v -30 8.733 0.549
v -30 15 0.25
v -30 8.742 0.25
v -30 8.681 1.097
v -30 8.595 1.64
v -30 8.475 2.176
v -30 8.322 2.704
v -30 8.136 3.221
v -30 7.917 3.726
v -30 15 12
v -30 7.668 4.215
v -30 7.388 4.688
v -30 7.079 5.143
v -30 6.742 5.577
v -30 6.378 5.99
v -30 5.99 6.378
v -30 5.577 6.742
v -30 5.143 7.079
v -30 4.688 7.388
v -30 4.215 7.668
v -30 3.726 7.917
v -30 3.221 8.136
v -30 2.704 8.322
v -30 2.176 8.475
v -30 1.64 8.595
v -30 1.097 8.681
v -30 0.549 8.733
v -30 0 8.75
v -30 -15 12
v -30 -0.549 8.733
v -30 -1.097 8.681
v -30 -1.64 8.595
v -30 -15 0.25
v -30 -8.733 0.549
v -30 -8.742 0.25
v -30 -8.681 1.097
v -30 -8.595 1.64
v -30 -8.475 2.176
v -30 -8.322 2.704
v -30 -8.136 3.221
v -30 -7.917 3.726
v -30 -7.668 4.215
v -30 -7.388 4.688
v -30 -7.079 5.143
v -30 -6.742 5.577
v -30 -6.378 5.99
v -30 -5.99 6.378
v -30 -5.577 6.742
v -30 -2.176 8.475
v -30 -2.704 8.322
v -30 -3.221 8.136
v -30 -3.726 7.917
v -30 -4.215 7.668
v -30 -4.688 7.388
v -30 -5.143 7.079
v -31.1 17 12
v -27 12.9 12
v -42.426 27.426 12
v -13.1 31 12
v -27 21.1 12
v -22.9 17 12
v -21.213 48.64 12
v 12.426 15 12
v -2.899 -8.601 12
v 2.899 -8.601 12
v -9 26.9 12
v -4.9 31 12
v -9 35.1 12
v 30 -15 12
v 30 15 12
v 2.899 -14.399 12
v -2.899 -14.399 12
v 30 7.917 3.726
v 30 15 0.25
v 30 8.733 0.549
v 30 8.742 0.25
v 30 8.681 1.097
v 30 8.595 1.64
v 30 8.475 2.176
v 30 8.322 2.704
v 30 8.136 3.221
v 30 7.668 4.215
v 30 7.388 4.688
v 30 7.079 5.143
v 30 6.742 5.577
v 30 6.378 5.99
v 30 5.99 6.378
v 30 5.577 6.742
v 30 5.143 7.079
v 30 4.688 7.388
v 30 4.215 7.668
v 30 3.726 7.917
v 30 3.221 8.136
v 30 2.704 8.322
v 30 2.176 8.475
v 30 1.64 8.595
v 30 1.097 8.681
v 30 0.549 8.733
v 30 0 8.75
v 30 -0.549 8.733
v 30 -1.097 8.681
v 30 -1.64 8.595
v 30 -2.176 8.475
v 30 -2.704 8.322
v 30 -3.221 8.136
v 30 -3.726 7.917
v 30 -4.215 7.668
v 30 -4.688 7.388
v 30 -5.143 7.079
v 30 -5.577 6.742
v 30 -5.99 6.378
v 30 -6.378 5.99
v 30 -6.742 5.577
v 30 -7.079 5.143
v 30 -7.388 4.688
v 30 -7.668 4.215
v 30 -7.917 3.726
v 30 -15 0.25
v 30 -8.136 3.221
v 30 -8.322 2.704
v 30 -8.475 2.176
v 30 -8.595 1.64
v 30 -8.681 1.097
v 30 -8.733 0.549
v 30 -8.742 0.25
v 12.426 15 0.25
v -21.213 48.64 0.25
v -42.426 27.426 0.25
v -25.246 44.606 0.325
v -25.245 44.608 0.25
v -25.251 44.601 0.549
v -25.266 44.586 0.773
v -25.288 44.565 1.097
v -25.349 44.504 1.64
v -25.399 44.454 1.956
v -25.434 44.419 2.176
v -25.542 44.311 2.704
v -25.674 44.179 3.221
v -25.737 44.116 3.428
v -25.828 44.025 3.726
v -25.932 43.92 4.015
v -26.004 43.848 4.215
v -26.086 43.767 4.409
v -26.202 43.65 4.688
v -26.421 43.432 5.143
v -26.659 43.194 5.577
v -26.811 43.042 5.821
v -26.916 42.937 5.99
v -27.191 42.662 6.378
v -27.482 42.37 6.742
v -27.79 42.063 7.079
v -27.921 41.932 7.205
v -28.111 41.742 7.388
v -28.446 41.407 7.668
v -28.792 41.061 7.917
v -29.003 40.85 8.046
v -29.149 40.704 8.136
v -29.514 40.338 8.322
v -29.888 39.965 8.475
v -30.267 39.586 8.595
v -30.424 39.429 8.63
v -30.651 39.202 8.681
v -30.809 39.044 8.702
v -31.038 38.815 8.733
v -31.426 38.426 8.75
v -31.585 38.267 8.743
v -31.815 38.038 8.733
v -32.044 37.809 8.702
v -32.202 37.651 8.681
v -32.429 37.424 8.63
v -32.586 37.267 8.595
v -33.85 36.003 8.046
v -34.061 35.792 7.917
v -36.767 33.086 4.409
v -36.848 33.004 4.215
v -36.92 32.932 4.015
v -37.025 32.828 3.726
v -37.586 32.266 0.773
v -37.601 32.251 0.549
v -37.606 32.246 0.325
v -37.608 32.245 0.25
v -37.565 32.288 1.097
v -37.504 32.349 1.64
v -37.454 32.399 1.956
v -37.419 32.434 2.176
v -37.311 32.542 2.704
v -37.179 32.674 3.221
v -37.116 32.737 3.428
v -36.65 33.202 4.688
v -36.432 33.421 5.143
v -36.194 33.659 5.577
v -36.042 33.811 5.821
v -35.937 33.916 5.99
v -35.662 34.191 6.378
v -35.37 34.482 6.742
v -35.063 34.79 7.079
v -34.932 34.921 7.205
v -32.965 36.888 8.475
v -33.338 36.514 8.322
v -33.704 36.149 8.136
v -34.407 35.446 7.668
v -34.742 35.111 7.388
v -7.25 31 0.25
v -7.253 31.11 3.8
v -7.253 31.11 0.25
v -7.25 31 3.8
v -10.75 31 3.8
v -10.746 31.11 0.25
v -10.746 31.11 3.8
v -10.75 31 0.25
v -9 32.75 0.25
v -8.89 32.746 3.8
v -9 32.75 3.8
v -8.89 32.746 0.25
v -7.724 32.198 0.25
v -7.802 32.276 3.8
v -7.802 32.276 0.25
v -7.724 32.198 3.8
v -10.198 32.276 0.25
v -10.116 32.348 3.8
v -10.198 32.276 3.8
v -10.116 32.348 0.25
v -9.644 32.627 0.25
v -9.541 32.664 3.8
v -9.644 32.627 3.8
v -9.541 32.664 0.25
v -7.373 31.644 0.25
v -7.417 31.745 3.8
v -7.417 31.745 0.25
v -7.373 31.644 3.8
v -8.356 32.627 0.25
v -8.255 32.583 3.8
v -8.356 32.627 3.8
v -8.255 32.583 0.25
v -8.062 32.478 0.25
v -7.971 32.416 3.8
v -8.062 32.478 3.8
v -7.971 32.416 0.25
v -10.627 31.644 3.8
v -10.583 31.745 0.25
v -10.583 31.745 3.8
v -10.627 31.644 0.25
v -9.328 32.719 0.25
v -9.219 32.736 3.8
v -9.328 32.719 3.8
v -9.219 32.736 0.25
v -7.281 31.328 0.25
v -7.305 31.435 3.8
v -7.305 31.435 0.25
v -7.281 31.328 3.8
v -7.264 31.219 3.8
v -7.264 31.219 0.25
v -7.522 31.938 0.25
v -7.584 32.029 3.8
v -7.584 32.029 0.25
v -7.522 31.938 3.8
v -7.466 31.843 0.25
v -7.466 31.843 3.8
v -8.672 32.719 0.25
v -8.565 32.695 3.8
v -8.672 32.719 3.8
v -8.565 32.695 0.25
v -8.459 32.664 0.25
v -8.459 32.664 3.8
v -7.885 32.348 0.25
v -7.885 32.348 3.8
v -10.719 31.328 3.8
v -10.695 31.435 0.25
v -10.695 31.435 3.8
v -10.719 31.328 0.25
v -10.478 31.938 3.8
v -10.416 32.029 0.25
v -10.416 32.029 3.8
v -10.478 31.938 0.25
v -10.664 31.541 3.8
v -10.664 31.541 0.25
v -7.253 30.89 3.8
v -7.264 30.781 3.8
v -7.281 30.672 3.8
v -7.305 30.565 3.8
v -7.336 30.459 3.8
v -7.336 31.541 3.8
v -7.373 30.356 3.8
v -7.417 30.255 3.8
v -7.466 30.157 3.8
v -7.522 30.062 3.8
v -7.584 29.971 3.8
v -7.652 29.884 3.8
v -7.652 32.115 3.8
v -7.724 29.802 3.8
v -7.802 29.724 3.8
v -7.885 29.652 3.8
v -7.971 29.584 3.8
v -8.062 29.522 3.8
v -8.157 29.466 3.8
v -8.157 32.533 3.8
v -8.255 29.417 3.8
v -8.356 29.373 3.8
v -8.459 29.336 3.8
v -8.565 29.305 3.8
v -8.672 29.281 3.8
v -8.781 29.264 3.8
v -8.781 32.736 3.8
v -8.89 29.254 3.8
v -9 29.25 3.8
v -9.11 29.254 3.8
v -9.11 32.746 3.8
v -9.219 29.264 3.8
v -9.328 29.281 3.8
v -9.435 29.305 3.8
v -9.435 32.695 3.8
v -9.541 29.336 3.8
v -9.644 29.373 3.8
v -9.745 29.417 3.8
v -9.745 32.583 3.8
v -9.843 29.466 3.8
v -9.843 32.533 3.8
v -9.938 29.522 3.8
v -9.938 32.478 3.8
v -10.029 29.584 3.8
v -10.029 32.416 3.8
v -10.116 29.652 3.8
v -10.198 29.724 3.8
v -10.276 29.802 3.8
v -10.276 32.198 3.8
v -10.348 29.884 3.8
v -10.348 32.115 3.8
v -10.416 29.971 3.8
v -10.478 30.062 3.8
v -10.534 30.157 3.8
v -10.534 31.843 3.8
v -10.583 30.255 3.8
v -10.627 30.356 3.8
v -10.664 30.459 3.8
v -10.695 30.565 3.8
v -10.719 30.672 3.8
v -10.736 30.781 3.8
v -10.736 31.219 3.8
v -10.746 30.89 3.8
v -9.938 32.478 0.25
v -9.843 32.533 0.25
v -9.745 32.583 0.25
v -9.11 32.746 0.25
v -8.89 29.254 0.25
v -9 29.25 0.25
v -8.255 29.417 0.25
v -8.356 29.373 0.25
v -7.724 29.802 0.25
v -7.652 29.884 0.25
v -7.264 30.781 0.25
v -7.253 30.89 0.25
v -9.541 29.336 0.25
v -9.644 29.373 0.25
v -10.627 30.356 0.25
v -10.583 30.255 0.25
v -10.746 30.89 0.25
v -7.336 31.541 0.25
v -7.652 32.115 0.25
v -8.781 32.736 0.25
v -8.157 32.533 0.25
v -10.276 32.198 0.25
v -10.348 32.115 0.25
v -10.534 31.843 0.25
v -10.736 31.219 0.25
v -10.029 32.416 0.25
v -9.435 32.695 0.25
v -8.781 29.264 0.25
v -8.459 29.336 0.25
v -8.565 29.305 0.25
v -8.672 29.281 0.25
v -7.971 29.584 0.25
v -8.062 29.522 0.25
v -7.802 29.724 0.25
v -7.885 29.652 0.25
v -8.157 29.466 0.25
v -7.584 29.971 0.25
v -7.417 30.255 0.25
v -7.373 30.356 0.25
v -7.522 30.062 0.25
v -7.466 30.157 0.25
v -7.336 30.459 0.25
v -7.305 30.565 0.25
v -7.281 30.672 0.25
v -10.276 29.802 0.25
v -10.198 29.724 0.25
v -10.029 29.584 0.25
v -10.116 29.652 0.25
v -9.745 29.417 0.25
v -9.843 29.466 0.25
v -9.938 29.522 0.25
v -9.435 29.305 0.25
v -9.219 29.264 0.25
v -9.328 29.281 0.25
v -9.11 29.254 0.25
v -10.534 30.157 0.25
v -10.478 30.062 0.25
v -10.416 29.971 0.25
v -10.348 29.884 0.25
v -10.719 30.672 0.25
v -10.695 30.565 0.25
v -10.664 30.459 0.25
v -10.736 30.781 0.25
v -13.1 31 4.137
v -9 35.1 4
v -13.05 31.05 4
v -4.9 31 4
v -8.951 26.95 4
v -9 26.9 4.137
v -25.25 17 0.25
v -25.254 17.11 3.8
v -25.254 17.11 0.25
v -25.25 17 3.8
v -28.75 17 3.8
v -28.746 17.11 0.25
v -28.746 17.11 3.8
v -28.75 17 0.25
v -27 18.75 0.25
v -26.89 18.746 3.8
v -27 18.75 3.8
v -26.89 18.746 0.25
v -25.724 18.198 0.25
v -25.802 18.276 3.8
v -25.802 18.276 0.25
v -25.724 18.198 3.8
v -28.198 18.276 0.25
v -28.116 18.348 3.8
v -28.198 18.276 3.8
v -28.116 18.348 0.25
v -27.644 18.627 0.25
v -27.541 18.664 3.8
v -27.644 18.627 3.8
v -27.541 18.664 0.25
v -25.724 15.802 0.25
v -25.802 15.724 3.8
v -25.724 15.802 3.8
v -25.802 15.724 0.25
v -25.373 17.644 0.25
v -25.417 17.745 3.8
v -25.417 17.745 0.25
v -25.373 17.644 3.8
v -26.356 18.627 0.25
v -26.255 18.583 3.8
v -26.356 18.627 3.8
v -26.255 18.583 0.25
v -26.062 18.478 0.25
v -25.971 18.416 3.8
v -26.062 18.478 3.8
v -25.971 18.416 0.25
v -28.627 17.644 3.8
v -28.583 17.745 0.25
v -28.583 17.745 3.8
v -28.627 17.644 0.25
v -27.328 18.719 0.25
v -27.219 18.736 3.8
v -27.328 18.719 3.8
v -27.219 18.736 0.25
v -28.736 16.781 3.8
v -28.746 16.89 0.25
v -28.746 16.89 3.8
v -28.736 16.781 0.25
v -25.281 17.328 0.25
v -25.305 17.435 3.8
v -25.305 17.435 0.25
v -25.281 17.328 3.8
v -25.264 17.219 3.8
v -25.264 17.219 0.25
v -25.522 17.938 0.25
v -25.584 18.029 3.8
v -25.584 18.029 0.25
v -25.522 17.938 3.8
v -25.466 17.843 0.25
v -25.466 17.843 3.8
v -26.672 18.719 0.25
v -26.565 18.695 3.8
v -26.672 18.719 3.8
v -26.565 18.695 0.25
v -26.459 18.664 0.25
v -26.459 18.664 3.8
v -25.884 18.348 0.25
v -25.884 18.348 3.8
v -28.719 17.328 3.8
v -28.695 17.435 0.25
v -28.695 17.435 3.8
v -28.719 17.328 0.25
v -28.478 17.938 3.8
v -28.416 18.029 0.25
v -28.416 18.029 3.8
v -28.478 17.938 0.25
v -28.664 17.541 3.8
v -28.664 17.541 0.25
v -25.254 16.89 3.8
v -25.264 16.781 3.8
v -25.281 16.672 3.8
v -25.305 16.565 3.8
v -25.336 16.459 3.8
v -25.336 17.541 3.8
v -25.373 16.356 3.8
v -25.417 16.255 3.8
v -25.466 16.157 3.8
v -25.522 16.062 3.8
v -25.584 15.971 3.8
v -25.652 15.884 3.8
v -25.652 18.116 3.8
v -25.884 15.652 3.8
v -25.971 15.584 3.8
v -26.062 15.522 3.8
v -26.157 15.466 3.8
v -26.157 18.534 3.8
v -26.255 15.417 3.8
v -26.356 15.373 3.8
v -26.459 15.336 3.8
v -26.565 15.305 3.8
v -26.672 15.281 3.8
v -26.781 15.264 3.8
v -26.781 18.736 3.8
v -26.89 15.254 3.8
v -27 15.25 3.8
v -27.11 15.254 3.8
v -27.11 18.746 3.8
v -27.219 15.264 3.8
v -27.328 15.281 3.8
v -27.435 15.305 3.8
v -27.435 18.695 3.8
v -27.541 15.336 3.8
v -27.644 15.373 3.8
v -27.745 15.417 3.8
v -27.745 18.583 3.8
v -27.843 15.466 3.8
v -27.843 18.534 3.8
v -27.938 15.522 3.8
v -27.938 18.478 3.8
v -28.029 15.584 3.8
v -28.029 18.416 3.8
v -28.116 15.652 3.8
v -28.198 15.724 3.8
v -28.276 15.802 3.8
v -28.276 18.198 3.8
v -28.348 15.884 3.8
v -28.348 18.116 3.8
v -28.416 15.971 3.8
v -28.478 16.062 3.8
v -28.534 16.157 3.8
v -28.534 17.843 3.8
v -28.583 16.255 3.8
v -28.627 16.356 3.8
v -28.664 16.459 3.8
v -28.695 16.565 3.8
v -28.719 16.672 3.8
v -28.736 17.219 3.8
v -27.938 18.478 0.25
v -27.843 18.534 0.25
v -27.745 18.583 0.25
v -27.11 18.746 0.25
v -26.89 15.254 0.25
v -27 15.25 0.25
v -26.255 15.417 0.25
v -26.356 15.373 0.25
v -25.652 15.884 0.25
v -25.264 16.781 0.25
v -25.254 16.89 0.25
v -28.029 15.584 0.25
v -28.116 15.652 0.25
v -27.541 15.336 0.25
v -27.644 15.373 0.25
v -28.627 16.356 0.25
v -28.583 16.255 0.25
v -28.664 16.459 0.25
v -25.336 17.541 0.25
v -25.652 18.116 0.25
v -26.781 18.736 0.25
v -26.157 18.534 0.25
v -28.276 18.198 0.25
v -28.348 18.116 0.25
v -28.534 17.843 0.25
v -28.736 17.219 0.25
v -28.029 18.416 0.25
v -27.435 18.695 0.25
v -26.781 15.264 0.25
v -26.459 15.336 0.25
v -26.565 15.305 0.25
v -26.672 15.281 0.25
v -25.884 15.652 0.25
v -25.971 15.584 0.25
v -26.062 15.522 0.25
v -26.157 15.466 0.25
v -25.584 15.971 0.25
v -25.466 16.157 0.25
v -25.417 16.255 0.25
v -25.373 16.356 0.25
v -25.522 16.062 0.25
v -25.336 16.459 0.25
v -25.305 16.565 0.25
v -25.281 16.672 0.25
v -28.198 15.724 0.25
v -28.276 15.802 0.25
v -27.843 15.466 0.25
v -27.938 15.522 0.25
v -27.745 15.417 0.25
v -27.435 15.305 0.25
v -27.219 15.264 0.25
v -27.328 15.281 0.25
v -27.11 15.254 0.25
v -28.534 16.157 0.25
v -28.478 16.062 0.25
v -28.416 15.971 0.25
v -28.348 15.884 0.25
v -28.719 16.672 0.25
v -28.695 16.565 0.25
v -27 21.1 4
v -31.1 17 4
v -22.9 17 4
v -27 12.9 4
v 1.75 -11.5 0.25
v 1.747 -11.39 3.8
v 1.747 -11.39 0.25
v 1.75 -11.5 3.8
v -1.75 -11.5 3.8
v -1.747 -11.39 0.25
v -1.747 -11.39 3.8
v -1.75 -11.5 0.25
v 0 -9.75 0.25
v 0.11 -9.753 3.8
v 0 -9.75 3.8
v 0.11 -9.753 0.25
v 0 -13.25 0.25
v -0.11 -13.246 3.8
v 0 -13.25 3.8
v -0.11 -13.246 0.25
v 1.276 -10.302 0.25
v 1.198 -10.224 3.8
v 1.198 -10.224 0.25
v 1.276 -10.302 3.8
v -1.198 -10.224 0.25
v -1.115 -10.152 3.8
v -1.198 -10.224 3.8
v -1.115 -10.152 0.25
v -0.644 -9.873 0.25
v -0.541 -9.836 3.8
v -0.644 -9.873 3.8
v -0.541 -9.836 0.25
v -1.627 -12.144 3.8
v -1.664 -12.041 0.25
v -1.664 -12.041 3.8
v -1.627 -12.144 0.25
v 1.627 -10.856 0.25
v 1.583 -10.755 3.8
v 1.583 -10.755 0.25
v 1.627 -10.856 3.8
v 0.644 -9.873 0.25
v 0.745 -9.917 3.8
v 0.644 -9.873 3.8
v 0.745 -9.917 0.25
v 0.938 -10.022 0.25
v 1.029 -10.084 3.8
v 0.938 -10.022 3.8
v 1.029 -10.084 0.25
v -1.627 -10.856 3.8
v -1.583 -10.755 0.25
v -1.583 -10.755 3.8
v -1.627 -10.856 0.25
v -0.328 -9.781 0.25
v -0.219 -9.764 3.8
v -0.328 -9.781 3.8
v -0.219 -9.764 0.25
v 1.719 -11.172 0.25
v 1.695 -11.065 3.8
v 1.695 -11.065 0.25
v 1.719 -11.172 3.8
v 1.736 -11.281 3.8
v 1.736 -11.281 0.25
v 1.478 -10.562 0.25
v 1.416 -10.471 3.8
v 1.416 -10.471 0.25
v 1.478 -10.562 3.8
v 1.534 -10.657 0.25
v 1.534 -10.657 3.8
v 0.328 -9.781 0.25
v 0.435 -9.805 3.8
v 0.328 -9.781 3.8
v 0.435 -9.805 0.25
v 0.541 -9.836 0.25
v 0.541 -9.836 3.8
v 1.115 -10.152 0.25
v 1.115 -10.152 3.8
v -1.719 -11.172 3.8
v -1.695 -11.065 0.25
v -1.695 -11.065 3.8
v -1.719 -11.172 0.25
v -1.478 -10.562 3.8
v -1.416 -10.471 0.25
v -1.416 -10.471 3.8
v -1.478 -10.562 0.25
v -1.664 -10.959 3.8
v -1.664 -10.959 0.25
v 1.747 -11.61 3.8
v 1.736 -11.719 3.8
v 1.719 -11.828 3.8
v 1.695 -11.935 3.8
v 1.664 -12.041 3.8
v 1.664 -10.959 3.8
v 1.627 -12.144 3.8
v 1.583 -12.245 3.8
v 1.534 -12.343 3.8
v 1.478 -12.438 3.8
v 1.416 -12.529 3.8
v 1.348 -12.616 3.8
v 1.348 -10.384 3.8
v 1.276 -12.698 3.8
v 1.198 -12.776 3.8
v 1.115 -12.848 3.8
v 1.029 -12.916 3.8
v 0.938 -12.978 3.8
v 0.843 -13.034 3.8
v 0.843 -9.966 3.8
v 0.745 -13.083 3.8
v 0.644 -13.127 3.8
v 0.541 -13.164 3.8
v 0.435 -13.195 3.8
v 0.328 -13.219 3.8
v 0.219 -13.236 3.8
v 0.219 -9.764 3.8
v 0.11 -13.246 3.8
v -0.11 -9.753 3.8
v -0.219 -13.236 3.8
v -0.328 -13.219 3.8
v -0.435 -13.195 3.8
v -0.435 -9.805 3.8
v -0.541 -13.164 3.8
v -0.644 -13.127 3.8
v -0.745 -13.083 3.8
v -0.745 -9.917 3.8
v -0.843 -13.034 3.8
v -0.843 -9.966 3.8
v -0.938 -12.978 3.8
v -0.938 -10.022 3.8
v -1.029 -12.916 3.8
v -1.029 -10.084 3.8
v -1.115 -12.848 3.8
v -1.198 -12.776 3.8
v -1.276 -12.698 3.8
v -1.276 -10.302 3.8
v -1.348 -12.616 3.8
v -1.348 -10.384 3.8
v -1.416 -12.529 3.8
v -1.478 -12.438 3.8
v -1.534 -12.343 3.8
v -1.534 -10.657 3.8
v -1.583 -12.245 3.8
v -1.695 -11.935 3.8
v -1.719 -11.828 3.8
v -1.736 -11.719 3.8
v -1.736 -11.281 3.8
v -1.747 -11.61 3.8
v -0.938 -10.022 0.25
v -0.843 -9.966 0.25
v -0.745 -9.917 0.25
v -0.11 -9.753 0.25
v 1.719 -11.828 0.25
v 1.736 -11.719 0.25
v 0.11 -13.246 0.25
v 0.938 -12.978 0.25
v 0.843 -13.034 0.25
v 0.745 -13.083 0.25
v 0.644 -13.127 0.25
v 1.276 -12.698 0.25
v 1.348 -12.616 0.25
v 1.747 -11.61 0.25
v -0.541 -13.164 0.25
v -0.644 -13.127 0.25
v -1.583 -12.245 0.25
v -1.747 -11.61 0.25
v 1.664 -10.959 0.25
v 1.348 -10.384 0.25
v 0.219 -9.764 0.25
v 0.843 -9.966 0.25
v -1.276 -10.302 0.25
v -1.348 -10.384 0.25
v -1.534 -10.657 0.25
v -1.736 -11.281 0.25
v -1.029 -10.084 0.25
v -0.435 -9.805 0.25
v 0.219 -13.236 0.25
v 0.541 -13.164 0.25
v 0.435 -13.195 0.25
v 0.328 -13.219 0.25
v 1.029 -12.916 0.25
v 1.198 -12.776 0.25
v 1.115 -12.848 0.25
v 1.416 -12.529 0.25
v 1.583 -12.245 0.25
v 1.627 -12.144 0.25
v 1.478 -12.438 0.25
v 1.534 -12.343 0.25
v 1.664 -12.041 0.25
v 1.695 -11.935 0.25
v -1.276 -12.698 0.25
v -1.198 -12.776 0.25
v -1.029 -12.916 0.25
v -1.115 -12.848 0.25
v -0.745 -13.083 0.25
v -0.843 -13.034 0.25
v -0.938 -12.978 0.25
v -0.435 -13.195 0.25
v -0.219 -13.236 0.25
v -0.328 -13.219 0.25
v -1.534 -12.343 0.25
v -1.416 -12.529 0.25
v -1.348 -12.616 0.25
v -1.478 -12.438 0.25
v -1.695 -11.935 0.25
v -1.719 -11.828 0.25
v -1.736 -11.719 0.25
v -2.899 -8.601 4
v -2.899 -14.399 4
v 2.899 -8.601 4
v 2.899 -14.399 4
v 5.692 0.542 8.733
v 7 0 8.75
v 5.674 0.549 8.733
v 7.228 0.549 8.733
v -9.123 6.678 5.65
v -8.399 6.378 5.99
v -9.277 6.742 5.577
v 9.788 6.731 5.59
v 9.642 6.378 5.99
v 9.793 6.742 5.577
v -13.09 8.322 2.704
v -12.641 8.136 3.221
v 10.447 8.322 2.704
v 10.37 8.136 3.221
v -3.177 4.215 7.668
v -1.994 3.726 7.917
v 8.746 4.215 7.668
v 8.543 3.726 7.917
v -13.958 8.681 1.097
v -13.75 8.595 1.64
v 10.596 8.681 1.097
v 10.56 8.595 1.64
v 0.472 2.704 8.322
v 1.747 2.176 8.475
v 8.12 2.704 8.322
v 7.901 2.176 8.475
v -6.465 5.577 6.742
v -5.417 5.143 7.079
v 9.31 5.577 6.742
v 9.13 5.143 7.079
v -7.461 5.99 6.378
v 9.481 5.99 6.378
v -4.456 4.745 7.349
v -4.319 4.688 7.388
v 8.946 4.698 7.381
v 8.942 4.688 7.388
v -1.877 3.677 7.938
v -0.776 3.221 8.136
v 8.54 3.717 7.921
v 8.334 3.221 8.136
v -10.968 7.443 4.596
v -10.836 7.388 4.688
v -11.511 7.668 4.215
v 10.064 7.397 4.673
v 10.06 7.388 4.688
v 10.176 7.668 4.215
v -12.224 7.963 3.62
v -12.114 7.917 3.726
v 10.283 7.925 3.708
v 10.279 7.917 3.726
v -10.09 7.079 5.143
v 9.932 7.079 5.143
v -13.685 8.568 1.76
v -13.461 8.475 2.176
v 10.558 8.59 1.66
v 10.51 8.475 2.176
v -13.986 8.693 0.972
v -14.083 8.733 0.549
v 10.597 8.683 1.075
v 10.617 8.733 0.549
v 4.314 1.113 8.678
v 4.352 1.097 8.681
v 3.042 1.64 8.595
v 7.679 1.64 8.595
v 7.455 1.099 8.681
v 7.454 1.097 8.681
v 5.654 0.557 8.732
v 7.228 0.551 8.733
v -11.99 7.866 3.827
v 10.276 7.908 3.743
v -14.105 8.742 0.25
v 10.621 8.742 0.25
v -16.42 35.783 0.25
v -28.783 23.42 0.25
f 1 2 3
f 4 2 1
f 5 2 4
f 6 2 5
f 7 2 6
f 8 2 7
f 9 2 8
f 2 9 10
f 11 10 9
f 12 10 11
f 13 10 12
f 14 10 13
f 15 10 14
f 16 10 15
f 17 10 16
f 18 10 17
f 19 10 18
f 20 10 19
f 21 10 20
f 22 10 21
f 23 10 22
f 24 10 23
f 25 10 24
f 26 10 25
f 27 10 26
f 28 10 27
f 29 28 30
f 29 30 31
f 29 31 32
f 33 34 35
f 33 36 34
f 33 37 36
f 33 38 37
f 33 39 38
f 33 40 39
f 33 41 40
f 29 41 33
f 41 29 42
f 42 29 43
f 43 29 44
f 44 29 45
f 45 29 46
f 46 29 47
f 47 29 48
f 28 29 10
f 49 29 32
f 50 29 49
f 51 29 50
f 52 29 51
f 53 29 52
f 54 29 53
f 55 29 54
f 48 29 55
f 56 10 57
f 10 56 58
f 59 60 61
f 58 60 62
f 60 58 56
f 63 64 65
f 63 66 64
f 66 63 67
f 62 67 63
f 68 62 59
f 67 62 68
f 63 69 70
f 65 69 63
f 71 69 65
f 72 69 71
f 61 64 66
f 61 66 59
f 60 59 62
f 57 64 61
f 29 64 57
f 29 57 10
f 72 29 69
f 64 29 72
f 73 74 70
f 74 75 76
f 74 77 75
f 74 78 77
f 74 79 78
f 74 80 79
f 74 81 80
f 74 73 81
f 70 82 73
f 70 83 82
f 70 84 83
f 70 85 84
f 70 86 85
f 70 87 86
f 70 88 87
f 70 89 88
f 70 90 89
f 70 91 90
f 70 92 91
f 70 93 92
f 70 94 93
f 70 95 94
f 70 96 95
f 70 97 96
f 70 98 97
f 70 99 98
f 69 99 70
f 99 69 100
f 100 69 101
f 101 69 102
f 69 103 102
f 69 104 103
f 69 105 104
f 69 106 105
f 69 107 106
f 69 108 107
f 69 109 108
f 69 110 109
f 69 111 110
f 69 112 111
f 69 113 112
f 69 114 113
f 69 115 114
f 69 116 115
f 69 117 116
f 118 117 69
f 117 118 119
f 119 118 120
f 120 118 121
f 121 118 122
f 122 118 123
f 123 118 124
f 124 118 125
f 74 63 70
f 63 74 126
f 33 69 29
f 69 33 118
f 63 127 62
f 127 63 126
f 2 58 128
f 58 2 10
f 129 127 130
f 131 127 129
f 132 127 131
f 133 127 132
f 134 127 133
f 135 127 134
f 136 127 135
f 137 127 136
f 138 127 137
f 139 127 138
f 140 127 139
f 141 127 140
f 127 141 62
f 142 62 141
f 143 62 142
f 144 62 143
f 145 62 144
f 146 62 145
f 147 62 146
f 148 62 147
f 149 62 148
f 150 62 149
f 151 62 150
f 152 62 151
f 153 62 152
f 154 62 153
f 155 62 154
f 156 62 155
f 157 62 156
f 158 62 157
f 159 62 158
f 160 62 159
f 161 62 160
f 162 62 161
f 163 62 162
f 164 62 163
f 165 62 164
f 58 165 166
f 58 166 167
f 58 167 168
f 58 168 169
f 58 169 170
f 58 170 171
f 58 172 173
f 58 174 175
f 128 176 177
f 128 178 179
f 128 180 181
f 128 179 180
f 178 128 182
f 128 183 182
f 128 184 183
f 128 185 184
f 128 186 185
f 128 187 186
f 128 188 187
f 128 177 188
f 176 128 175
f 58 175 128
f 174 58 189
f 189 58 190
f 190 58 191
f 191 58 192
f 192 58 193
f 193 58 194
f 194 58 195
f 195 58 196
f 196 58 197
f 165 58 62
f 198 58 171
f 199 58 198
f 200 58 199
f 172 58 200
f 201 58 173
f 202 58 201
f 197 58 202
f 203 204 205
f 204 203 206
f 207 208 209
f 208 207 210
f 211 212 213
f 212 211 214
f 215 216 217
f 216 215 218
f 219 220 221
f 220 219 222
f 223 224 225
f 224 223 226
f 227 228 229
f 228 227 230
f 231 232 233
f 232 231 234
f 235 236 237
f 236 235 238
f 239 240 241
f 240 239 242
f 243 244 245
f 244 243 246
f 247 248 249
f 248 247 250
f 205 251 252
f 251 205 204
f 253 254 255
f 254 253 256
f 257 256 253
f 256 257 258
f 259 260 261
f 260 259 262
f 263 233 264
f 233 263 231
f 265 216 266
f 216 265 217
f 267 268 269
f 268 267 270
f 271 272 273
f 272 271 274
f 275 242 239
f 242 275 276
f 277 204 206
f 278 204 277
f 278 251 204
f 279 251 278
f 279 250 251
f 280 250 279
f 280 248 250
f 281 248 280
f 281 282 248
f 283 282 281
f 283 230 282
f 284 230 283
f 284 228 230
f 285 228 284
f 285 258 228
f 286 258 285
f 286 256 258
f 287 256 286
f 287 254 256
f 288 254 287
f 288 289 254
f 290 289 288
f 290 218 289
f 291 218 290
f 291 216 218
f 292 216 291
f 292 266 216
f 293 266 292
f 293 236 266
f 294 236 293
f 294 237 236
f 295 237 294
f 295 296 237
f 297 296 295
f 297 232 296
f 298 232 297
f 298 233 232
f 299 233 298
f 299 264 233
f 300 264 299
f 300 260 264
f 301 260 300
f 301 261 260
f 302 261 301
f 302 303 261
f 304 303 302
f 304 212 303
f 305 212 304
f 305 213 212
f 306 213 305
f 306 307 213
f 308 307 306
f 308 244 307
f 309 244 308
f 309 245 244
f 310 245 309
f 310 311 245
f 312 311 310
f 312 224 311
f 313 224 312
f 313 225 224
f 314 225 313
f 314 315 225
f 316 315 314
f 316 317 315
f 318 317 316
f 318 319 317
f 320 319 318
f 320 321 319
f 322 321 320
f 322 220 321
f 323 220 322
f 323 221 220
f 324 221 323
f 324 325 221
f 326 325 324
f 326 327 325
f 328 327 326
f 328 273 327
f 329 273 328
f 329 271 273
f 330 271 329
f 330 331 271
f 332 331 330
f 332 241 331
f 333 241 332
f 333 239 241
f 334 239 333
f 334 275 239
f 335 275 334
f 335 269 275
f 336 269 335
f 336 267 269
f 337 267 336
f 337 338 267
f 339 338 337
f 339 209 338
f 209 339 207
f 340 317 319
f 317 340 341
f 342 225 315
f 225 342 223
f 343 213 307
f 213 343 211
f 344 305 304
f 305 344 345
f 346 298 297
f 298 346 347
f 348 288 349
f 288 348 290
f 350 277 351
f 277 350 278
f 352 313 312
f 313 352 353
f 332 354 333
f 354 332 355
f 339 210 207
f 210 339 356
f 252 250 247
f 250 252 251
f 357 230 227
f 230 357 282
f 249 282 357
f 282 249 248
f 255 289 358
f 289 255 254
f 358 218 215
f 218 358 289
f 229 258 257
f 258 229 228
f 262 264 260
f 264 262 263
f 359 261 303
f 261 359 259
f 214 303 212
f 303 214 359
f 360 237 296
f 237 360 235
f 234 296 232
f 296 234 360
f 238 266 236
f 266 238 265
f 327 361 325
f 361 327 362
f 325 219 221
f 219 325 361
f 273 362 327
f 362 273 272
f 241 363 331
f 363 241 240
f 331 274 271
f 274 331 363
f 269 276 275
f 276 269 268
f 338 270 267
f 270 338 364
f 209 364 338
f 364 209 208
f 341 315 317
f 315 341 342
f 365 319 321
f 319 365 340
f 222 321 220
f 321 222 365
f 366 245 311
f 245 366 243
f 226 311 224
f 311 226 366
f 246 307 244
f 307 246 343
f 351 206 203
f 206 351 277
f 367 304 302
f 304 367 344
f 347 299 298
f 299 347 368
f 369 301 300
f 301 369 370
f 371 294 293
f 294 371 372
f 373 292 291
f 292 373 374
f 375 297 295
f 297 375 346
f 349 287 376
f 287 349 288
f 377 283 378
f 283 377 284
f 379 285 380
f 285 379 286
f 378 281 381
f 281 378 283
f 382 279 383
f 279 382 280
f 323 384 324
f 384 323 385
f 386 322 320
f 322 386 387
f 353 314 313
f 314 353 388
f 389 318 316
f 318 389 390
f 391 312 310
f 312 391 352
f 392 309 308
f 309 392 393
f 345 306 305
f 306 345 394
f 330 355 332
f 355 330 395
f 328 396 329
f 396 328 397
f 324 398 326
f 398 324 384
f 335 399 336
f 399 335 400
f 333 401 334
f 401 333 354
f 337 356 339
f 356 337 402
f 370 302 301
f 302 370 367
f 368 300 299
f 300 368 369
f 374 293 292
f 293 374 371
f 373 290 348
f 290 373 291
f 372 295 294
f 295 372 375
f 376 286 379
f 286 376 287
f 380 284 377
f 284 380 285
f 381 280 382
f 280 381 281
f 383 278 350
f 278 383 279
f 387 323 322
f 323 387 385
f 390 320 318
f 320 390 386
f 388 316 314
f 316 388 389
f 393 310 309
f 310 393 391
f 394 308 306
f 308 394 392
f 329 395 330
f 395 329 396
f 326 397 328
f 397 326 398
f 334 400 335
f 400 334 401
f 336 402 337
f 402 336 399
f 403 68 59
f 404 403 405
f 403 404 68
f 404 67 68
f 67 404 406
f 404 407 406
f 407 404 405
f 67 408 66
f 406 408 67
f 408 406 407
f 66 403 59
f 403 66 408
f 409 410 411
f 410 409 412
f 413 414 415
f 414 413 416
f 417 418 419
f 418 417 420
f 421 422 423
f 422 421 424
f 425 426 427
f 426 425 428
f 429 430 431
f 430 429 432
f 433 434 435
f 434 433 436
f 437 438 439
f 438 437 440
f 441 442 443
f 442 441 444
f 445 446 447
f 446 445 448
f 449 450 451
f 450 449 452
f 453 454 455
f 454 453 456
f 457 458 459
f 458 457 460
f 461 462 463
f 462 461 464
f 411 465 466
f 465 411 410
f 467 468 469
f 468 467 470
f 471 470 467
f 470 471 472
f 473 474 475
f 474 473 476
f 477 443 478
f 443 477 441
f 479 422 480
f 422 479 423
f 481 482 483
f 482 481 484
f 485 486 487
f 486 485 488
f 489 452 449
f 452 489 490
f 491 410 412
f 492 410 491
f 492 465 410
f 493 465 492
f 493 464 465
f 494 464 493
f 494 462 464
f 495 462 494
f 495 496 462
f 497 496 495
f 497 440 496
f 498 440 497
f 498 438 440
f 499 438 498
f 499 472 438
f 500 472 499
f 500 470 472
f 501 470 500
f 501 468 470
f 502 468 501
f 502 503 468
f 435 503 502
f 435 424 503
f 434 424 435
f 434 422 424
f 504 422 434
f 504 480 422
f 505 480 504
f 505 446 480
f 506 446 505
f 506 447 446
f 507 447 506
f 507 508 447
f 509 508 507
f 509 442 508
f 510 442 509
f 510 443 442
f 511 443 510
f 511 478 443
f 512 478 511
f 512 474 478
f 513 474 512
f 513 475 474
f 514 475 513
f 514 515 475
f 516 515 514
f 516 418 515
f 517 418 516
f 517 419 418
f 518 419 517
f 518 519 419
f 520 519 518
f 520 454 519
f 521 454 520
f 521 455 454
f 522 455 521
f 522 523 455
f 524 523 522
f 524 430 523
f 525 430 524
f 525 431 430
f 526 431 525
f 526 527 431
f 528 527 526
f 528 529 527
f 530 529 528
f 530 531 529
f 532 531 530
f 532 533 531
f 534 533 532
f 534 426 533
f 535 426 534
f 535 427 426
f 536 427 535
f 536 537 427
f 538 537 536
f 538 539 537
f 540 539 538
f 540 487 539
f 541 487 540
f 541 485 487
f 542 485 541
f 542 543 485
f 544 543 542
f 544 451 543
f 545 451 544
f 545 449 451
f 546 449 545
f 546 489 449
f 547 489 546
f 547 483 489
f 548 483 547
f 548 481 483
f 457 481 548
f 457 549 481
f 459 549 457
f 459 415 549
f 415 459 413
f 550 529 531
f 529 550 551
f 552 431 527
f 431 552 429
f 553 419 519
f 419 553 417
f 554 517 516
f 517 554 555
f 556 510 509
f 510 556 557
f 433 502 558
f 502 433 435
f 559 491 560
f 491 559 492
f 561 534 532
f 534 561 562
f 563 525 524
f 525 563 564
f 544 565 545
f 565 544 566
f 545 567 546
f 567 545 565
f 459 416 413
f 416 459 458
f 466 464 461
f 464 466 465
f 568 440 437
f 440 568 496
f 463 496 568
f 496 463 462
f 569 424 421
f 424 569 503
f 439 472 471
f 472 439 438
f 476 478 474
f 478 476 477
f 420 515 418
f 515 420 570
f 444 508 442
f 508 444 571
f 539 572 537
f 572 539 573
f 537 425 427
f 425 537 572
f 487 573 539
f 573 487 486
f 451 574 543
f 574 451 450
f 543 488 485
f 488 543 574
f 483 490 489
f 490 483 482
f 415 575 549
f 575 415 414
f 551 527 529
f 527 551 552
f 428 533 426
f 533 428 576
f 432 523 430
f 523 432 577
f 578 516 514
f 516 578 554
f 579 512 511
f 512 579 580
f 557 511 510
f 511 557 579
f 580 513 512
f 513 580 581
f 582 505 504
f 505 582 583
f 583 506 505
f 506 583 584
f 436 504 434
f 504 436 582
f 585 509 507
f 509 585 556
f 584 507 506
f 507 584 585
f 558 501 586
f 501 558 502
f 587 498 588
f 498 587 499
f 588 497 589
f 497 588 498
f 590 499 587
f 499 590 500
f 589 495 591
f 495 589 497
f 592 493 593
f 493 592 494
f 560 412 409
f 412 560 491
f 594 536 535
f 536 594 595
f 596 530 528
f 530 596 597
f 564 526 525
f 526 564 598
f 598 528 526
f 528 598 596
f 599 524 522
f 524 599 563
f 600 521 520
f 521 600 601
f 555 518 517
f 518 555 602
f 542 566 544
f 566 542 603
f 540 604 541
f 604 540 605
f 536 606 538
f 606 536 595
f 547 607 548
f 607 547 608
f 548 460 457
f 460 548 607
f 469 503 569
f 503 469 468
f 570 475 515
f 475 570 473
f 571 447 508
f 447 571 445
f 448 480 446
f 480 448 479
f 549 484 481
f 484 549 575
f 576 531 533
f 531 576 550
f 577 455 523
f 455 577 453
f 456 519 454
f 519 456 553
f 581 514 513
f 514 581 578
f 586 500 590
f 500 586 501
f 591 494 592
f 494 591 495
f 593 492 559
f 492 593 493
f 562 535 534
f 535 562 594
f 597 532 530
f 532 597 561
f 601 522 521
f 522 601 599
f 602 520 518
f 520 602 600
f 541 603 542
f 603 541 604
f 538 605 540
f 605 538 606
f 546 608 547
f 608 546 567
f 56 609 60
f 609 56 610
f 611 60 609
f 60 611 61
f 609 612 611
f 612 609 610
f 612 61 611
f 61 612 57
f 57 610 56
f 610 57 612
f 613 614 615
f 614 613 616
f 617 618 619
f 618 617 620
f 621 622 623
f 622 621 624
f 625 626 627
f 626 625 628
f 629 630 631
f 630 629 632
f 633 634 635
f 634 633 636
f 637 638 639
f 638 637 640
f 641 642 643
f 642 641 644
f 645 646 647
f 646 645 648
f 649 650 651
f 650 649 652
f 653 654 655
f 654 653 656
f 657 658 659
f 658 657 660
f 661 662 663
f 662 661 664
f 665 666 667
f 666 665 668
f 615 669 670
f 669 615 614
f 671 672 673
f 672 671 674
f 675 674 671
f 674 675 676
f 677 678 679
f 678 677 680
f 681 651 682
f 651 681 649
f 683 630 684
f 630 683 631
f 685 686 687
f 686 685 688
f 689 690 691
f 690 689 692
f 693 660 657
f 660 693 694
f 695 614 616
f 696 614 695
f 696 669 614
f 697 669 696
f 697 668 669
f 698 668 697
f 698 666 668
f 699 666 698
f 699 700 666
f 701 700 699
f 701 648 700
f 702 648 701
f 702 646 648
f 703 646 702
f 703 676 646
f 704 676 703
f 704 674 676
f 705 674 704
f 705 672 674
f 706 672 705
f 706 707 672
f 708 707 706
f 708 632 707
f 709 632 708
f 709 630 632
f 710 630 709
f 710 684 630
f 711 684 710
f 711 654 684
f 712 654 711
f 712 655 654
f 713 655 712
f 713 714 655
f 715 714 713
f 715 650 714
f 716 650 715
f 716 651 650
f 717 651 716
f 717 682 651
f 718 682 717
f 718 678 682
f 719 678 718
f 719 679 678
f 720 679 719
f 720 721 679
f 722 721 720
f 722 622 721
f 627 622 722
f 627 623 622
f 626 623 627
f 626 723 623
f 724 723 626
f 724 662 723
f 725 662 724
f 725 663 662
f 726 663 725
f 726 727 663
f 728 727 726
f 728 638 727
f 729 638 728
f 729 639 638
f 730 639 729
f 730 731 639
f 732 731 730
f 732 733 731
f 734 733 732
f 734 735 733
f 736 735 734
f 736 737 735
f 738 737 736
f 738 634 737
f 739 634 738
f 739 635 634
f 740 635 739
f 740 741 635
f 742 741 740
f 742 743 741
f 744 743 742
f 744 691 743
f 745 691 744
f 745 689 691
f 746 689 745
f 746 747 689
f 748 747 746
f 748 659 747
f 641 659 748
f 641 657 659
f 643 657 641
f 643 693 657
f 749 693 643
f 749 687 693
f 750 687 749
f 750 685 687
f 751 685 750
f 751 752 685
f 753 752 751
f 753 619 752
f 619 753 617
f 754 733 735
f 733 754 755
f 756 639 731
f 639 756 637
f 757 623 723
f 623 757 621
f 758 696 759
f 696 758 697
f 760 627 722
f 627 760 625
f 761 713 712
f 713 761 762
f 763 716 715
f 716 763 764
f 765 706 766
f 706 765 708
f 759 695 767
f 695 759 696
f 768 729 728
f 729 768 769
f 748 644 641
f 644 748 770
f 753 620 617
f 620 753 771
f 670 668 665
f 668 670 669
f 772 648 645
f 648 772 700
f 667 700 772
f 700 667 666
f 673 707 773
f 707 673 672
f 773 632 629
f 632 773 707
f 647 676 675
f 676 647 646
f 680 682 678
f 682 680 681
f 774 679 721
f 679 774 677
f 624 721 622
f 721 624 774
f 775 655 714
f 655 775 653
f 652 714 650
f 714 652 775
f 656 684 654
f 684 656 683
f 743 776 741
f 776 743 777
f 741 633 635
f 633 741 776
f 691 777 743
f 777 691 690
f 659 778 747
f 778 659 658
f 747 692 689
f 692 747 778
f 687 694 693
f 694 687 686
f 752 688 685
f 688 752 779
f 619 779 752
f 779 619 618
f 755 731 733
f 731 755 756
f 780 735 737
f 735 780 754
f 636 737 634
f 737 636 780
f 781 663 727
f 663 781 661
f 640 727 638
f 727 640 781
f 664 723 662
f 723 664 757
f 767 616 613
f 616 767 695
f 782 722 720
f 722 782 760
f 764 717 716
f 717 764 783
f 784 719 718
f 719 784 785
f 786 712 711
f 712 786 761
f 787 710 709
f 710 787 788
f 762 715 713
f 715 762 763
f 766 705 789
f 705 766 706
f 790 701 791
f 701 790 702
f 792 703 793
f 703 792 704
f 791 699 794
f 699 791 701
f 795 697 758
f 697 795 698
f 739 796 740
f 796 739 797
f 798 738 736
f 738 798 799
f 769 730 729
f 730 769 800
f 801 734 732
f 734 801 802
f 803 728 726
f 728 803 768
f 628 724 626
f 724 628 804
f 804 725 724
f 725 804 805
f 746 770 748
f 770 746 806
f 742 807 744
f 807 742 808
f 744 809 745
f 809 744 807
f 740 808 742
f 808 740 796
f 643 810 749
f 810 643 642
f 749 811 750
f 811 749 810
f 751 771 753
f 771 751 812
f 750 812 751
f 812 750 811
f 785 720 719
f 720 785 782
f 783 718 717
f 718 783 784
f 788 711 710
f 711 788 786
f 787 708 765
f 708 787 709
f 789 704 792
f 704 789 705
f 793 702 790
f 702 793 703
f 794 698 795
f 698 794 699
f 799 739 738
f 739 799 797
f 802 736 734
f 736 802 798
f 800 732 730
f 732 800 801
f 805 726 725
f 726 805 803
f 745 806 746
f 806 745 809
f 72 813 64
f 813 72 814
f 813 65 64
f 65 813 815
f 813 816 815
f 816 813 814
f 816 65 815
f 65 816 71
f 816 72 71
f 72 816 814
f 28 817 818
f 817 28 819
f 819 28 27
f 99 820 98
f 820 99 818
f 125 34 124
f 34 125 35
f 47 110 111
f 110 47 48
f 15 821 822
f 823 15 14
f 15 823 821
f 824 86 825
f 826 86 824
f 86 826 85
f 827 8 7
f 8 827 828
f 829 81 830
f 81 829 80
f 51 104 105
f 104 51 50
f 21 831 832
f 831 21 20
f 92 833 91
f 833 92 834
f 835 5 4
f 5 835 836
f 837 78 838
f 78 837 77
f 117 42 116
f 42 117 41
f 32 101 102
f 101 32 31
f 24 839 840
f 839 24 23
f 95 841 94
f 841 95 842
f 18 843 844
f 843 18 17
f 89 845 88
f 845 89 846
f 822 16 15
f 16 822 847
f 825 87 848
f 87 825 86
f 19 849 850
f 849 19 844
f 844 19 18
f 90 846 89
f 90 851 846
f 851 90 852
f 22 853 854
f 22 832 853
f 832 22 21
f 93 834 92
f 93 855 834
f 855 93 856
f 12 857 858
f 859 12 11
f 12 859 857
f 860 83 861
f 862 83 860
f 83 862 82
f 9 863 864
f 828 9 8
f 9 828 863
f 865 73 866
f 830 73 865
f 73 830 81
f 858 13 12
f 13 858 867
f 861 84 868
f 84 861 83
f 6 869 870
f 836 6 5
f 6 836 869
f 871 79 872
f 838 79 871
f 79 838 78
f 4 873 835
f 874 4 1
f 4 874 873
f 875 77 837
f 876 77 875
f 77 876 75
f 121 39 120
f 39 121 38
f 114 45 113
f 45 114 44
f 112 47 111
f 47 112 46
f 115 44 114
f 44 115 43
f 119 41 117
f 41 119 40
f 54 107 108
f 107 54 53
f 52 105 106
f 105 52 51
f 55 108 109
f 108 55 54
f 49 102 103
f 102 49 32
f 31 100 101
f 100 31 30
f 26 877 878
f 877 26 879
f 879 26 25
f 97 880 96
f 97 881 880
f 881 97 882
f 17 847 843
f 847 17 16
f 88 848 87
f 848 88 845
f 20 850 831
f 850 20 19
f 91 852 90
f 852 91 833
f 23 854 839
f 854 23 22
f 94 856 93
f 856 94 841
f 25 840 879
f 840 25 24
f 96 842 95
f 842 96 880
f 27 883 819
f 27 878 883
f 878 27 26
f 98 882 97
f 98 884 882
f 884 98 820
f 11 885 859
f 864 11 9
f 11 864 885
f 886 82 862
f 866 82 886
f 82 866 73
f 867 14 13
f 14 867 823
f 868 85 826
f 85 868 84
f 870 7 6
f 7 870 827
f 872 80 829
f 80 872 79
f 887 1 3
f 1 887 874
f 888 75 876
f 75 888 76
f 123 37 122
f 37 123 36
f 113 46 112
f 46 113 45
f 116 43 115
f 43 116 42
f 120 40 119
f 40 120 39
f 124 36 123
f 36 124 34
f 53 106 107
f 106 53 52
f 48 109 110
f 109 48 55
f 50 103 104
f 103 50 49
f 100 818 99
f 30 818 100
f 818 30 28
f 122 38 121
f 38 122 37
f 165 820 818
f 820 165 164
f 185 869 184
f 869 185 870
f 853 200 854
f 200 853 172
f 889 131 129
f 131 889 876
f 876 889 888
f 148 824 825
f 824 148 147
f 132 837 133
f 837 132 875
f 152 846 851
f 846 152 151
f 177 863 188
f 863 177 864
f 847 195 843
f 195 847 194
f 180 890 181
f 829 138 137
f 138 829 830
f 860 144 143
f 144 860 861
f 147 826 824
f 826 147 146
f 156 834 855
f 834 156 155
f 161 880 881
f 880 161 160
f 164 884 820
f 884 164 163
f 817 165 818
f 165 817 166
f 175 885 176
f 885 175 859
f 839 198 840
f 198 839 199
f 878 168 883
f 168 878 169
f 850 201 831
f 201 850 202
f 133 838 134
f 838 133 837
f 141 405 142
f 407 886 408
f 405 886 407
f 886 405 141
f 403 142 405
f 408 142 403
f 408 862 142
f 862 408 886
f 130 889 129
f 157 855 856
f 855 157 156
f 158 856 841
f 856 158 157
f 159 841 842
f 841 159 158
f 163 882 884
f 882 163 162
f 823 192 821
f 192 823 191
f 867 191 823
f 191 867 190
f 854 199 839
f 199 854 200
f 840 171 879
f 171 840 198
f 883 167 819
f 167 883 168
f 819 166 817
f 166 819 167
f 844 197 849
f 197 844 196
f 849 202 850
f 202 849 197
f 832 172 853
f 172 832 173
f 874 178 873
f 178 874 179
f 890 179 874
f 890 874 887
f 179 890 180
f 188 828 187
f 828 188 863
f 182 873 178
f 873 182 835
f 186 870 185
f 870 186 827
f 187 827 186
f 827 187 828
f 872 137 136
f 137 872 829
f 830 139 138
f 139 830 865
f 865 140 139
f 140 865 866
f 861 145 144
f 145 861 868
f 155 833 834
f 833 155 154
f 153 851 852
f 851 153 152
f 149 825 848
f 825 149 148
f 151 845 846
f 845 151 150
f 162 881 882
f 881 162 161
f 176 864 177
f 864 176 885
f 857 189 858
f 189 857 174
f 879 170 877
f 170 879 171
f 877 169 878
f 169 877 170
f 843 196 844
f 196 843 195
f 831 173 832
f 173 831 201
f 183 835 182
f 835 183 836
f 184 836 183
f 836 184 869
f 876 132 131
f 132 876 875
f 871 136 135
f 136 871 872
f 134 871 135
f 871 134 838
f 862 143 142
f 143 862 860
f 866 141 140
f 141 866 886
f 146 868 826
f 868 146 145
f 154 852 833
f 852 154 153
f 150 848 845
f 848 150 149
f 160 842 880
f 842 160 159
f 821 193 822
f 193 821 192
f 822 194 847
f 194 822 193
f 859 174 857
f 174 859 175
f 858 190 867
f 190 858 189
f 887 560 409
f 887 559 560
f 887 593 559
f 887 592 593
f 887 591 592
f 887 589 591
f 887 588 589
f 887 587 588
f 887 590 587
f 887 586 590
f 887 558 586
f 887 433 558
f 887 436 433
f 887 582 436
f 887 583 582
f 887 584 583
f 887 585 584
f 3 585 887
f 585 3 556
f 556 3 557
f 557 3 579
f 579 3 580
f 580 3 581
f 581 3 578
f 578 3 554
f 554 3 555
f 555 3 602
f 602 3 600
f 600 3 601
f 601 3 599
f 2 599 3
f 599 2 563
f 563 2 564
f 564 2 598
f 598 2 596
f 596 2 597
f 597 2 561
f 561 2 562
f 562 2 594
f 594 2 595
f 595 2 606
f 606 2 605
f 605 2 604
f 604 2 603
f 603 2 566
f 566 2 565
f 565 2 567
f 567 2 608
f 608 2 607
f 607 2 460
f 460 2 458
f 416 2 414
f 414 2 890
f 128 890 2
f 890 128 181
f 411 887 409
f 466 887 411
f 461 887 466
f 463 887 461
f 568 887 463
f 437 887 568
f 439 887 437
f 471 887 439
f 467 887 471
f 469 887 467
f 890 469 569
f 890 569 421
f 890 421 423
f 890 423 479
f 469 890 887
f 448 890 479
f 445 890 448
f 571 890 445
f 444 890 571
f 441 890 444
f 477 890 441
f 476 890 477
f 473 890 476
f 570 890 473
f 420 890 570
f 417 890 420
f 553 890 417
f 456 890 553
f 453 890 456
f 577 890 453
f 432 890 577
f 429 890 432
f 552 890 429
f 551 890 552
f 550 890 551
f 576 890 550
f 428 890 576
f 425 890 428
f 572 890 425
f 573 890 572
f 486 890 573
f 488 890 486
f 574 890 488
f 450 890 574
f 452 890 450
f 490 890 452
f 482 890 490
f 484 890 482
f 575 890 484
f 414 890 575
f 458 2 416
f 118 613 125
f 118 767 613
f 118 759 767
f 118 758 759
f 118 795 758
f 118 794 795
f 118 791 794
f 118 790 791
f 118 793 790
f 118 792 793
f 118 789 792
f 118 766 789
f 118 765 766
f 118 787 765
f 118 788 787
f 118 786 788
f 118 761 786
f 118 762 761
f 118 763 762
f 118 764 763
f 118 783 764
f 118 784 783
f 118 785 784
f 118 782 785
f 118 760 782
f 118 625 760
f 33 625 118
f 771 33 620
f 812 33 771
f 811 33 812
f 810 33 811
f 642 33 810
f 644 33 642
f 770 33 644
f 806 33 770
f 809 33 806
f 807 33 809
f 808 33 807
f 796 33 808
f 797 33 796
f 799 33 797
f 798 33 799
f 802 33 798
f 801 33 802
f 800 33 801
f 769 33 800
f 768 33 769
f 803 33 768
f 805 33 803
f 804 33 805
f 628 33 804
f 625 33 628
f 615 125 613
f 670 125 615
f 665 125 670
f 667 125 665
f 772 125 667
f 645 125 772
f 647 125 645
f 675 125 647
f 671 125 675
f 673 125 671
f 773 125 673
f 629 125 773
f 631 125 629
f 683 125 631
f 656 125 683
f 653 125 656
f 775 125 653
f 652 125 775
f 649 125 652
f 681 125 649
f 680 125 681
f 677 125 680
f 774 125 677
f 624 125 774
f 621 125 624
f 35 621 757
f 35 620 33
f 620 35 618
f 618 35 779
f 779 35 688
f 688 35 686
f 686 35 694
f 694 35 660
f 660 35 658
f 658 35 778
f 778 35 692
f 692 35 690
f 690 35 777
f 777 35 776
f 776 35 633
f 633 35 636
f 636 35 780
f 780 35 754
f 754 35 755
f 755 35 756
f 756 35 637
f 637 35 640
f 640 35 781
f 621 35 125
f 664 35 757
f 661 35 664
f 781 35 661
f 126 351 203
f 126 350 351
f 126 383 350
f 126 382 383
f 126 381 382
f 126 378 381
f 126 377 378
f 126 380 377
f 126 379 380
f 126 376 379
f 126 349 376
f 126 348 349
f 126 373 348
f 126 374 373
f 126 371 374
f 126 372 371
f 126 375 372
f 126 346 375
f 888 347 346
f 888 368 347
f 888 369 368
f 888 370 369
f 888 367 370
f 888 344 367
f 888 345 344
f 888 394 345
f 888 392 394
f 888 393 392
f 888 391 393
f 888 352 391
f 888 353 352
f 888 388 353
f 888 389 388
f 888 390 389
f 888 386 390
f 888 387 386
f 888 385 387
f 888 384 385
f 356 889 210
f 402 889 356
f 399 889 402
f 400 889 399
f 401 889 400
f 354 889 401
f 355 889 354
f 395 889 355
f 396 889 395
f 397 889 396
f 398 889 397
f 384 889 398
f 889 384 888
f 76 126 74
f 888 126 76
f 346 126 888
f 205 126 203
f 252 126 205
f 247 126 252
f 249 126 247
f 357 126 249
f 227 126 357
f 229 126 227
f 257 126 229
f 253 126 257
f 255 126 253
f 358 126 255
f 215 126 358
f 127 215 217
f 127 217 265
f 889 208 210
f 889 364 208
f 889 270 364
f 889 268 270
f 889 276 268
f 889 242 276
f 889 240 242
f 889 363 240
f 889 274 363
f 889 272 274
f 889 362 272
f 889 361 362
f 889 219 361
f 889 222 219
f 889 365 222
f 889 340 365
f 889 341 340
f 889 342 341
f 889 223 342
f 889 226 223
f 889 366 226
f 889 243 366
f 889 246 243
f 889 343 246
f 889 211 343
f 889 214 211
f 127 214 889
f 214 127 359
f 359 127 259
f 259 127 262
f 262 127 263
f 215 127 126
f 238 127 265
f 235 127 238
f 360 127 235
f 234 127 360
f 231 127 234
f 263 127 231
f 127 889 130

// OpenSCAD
prumer_tyce_1 = 17.5;
prumer_tyce_2 = 24.8;

vyska = 12;
sirka = 30;
delka = 60;
delka2 = 90;

//Screw diameter and nut for M3 [mm]
M3_screw_diameter = 3.5;
M3_nut_height = 2.7;
M3_nut_diameter = 6.6;
M3_screw_head_height = 3;
M3_nut_pocket = 5.6;

difference() {
    translate ([-delka/2, -sirka/2, 0])
        union () {
            cube ([delka, sirka, vyska]);
            translate ([delka/2, 0, 0])
                rotate([0, 0, 45])
                cube ([sirka, delka2*2/3, vyska]);
        }

    //hlavni
    translate ([-delka/2-1, 0, 0])
        rotate ([0, 90, 0])
            cylinder (h=delka+2, d=prumer_tyce_1, $fn=100);

    //sikma
    translate ([7, 0, 0])
        rotate ([0, -90, -45])
            cylinder (h=delka2+2, d=prumer_tyce_1, $fn=100);

    //mezera
    cube ([120, 120, 0.5], center=true);

    //srouby M3x14
    translate ([-9, 31, 0]) {
        cylinder (h=4-0.2, d=M3_screw_diameter, $fn=100);
        translate ([0, 0, 4])
            cylinder (h=20, d=8.2, $fn=4);
    }

    translate ([-27, 17, 0]) {
        cylinder (h=4-0.2, d=M3_screw_diameter, $fn=100);
        translate ([0, 0, 4])
            cylinder (h=20, d=8.2, $fn=4);
    }

    translate ([0, -11.5, 0]) {
        cylinder (h=4-0.2, d=M3_screw_diameter, $fn=100);
        rotate ([0, 0, 45])
            translate ([0, 0, 4])
                cylinder (h=20, d=8.2, $fn=4);
    }
}
